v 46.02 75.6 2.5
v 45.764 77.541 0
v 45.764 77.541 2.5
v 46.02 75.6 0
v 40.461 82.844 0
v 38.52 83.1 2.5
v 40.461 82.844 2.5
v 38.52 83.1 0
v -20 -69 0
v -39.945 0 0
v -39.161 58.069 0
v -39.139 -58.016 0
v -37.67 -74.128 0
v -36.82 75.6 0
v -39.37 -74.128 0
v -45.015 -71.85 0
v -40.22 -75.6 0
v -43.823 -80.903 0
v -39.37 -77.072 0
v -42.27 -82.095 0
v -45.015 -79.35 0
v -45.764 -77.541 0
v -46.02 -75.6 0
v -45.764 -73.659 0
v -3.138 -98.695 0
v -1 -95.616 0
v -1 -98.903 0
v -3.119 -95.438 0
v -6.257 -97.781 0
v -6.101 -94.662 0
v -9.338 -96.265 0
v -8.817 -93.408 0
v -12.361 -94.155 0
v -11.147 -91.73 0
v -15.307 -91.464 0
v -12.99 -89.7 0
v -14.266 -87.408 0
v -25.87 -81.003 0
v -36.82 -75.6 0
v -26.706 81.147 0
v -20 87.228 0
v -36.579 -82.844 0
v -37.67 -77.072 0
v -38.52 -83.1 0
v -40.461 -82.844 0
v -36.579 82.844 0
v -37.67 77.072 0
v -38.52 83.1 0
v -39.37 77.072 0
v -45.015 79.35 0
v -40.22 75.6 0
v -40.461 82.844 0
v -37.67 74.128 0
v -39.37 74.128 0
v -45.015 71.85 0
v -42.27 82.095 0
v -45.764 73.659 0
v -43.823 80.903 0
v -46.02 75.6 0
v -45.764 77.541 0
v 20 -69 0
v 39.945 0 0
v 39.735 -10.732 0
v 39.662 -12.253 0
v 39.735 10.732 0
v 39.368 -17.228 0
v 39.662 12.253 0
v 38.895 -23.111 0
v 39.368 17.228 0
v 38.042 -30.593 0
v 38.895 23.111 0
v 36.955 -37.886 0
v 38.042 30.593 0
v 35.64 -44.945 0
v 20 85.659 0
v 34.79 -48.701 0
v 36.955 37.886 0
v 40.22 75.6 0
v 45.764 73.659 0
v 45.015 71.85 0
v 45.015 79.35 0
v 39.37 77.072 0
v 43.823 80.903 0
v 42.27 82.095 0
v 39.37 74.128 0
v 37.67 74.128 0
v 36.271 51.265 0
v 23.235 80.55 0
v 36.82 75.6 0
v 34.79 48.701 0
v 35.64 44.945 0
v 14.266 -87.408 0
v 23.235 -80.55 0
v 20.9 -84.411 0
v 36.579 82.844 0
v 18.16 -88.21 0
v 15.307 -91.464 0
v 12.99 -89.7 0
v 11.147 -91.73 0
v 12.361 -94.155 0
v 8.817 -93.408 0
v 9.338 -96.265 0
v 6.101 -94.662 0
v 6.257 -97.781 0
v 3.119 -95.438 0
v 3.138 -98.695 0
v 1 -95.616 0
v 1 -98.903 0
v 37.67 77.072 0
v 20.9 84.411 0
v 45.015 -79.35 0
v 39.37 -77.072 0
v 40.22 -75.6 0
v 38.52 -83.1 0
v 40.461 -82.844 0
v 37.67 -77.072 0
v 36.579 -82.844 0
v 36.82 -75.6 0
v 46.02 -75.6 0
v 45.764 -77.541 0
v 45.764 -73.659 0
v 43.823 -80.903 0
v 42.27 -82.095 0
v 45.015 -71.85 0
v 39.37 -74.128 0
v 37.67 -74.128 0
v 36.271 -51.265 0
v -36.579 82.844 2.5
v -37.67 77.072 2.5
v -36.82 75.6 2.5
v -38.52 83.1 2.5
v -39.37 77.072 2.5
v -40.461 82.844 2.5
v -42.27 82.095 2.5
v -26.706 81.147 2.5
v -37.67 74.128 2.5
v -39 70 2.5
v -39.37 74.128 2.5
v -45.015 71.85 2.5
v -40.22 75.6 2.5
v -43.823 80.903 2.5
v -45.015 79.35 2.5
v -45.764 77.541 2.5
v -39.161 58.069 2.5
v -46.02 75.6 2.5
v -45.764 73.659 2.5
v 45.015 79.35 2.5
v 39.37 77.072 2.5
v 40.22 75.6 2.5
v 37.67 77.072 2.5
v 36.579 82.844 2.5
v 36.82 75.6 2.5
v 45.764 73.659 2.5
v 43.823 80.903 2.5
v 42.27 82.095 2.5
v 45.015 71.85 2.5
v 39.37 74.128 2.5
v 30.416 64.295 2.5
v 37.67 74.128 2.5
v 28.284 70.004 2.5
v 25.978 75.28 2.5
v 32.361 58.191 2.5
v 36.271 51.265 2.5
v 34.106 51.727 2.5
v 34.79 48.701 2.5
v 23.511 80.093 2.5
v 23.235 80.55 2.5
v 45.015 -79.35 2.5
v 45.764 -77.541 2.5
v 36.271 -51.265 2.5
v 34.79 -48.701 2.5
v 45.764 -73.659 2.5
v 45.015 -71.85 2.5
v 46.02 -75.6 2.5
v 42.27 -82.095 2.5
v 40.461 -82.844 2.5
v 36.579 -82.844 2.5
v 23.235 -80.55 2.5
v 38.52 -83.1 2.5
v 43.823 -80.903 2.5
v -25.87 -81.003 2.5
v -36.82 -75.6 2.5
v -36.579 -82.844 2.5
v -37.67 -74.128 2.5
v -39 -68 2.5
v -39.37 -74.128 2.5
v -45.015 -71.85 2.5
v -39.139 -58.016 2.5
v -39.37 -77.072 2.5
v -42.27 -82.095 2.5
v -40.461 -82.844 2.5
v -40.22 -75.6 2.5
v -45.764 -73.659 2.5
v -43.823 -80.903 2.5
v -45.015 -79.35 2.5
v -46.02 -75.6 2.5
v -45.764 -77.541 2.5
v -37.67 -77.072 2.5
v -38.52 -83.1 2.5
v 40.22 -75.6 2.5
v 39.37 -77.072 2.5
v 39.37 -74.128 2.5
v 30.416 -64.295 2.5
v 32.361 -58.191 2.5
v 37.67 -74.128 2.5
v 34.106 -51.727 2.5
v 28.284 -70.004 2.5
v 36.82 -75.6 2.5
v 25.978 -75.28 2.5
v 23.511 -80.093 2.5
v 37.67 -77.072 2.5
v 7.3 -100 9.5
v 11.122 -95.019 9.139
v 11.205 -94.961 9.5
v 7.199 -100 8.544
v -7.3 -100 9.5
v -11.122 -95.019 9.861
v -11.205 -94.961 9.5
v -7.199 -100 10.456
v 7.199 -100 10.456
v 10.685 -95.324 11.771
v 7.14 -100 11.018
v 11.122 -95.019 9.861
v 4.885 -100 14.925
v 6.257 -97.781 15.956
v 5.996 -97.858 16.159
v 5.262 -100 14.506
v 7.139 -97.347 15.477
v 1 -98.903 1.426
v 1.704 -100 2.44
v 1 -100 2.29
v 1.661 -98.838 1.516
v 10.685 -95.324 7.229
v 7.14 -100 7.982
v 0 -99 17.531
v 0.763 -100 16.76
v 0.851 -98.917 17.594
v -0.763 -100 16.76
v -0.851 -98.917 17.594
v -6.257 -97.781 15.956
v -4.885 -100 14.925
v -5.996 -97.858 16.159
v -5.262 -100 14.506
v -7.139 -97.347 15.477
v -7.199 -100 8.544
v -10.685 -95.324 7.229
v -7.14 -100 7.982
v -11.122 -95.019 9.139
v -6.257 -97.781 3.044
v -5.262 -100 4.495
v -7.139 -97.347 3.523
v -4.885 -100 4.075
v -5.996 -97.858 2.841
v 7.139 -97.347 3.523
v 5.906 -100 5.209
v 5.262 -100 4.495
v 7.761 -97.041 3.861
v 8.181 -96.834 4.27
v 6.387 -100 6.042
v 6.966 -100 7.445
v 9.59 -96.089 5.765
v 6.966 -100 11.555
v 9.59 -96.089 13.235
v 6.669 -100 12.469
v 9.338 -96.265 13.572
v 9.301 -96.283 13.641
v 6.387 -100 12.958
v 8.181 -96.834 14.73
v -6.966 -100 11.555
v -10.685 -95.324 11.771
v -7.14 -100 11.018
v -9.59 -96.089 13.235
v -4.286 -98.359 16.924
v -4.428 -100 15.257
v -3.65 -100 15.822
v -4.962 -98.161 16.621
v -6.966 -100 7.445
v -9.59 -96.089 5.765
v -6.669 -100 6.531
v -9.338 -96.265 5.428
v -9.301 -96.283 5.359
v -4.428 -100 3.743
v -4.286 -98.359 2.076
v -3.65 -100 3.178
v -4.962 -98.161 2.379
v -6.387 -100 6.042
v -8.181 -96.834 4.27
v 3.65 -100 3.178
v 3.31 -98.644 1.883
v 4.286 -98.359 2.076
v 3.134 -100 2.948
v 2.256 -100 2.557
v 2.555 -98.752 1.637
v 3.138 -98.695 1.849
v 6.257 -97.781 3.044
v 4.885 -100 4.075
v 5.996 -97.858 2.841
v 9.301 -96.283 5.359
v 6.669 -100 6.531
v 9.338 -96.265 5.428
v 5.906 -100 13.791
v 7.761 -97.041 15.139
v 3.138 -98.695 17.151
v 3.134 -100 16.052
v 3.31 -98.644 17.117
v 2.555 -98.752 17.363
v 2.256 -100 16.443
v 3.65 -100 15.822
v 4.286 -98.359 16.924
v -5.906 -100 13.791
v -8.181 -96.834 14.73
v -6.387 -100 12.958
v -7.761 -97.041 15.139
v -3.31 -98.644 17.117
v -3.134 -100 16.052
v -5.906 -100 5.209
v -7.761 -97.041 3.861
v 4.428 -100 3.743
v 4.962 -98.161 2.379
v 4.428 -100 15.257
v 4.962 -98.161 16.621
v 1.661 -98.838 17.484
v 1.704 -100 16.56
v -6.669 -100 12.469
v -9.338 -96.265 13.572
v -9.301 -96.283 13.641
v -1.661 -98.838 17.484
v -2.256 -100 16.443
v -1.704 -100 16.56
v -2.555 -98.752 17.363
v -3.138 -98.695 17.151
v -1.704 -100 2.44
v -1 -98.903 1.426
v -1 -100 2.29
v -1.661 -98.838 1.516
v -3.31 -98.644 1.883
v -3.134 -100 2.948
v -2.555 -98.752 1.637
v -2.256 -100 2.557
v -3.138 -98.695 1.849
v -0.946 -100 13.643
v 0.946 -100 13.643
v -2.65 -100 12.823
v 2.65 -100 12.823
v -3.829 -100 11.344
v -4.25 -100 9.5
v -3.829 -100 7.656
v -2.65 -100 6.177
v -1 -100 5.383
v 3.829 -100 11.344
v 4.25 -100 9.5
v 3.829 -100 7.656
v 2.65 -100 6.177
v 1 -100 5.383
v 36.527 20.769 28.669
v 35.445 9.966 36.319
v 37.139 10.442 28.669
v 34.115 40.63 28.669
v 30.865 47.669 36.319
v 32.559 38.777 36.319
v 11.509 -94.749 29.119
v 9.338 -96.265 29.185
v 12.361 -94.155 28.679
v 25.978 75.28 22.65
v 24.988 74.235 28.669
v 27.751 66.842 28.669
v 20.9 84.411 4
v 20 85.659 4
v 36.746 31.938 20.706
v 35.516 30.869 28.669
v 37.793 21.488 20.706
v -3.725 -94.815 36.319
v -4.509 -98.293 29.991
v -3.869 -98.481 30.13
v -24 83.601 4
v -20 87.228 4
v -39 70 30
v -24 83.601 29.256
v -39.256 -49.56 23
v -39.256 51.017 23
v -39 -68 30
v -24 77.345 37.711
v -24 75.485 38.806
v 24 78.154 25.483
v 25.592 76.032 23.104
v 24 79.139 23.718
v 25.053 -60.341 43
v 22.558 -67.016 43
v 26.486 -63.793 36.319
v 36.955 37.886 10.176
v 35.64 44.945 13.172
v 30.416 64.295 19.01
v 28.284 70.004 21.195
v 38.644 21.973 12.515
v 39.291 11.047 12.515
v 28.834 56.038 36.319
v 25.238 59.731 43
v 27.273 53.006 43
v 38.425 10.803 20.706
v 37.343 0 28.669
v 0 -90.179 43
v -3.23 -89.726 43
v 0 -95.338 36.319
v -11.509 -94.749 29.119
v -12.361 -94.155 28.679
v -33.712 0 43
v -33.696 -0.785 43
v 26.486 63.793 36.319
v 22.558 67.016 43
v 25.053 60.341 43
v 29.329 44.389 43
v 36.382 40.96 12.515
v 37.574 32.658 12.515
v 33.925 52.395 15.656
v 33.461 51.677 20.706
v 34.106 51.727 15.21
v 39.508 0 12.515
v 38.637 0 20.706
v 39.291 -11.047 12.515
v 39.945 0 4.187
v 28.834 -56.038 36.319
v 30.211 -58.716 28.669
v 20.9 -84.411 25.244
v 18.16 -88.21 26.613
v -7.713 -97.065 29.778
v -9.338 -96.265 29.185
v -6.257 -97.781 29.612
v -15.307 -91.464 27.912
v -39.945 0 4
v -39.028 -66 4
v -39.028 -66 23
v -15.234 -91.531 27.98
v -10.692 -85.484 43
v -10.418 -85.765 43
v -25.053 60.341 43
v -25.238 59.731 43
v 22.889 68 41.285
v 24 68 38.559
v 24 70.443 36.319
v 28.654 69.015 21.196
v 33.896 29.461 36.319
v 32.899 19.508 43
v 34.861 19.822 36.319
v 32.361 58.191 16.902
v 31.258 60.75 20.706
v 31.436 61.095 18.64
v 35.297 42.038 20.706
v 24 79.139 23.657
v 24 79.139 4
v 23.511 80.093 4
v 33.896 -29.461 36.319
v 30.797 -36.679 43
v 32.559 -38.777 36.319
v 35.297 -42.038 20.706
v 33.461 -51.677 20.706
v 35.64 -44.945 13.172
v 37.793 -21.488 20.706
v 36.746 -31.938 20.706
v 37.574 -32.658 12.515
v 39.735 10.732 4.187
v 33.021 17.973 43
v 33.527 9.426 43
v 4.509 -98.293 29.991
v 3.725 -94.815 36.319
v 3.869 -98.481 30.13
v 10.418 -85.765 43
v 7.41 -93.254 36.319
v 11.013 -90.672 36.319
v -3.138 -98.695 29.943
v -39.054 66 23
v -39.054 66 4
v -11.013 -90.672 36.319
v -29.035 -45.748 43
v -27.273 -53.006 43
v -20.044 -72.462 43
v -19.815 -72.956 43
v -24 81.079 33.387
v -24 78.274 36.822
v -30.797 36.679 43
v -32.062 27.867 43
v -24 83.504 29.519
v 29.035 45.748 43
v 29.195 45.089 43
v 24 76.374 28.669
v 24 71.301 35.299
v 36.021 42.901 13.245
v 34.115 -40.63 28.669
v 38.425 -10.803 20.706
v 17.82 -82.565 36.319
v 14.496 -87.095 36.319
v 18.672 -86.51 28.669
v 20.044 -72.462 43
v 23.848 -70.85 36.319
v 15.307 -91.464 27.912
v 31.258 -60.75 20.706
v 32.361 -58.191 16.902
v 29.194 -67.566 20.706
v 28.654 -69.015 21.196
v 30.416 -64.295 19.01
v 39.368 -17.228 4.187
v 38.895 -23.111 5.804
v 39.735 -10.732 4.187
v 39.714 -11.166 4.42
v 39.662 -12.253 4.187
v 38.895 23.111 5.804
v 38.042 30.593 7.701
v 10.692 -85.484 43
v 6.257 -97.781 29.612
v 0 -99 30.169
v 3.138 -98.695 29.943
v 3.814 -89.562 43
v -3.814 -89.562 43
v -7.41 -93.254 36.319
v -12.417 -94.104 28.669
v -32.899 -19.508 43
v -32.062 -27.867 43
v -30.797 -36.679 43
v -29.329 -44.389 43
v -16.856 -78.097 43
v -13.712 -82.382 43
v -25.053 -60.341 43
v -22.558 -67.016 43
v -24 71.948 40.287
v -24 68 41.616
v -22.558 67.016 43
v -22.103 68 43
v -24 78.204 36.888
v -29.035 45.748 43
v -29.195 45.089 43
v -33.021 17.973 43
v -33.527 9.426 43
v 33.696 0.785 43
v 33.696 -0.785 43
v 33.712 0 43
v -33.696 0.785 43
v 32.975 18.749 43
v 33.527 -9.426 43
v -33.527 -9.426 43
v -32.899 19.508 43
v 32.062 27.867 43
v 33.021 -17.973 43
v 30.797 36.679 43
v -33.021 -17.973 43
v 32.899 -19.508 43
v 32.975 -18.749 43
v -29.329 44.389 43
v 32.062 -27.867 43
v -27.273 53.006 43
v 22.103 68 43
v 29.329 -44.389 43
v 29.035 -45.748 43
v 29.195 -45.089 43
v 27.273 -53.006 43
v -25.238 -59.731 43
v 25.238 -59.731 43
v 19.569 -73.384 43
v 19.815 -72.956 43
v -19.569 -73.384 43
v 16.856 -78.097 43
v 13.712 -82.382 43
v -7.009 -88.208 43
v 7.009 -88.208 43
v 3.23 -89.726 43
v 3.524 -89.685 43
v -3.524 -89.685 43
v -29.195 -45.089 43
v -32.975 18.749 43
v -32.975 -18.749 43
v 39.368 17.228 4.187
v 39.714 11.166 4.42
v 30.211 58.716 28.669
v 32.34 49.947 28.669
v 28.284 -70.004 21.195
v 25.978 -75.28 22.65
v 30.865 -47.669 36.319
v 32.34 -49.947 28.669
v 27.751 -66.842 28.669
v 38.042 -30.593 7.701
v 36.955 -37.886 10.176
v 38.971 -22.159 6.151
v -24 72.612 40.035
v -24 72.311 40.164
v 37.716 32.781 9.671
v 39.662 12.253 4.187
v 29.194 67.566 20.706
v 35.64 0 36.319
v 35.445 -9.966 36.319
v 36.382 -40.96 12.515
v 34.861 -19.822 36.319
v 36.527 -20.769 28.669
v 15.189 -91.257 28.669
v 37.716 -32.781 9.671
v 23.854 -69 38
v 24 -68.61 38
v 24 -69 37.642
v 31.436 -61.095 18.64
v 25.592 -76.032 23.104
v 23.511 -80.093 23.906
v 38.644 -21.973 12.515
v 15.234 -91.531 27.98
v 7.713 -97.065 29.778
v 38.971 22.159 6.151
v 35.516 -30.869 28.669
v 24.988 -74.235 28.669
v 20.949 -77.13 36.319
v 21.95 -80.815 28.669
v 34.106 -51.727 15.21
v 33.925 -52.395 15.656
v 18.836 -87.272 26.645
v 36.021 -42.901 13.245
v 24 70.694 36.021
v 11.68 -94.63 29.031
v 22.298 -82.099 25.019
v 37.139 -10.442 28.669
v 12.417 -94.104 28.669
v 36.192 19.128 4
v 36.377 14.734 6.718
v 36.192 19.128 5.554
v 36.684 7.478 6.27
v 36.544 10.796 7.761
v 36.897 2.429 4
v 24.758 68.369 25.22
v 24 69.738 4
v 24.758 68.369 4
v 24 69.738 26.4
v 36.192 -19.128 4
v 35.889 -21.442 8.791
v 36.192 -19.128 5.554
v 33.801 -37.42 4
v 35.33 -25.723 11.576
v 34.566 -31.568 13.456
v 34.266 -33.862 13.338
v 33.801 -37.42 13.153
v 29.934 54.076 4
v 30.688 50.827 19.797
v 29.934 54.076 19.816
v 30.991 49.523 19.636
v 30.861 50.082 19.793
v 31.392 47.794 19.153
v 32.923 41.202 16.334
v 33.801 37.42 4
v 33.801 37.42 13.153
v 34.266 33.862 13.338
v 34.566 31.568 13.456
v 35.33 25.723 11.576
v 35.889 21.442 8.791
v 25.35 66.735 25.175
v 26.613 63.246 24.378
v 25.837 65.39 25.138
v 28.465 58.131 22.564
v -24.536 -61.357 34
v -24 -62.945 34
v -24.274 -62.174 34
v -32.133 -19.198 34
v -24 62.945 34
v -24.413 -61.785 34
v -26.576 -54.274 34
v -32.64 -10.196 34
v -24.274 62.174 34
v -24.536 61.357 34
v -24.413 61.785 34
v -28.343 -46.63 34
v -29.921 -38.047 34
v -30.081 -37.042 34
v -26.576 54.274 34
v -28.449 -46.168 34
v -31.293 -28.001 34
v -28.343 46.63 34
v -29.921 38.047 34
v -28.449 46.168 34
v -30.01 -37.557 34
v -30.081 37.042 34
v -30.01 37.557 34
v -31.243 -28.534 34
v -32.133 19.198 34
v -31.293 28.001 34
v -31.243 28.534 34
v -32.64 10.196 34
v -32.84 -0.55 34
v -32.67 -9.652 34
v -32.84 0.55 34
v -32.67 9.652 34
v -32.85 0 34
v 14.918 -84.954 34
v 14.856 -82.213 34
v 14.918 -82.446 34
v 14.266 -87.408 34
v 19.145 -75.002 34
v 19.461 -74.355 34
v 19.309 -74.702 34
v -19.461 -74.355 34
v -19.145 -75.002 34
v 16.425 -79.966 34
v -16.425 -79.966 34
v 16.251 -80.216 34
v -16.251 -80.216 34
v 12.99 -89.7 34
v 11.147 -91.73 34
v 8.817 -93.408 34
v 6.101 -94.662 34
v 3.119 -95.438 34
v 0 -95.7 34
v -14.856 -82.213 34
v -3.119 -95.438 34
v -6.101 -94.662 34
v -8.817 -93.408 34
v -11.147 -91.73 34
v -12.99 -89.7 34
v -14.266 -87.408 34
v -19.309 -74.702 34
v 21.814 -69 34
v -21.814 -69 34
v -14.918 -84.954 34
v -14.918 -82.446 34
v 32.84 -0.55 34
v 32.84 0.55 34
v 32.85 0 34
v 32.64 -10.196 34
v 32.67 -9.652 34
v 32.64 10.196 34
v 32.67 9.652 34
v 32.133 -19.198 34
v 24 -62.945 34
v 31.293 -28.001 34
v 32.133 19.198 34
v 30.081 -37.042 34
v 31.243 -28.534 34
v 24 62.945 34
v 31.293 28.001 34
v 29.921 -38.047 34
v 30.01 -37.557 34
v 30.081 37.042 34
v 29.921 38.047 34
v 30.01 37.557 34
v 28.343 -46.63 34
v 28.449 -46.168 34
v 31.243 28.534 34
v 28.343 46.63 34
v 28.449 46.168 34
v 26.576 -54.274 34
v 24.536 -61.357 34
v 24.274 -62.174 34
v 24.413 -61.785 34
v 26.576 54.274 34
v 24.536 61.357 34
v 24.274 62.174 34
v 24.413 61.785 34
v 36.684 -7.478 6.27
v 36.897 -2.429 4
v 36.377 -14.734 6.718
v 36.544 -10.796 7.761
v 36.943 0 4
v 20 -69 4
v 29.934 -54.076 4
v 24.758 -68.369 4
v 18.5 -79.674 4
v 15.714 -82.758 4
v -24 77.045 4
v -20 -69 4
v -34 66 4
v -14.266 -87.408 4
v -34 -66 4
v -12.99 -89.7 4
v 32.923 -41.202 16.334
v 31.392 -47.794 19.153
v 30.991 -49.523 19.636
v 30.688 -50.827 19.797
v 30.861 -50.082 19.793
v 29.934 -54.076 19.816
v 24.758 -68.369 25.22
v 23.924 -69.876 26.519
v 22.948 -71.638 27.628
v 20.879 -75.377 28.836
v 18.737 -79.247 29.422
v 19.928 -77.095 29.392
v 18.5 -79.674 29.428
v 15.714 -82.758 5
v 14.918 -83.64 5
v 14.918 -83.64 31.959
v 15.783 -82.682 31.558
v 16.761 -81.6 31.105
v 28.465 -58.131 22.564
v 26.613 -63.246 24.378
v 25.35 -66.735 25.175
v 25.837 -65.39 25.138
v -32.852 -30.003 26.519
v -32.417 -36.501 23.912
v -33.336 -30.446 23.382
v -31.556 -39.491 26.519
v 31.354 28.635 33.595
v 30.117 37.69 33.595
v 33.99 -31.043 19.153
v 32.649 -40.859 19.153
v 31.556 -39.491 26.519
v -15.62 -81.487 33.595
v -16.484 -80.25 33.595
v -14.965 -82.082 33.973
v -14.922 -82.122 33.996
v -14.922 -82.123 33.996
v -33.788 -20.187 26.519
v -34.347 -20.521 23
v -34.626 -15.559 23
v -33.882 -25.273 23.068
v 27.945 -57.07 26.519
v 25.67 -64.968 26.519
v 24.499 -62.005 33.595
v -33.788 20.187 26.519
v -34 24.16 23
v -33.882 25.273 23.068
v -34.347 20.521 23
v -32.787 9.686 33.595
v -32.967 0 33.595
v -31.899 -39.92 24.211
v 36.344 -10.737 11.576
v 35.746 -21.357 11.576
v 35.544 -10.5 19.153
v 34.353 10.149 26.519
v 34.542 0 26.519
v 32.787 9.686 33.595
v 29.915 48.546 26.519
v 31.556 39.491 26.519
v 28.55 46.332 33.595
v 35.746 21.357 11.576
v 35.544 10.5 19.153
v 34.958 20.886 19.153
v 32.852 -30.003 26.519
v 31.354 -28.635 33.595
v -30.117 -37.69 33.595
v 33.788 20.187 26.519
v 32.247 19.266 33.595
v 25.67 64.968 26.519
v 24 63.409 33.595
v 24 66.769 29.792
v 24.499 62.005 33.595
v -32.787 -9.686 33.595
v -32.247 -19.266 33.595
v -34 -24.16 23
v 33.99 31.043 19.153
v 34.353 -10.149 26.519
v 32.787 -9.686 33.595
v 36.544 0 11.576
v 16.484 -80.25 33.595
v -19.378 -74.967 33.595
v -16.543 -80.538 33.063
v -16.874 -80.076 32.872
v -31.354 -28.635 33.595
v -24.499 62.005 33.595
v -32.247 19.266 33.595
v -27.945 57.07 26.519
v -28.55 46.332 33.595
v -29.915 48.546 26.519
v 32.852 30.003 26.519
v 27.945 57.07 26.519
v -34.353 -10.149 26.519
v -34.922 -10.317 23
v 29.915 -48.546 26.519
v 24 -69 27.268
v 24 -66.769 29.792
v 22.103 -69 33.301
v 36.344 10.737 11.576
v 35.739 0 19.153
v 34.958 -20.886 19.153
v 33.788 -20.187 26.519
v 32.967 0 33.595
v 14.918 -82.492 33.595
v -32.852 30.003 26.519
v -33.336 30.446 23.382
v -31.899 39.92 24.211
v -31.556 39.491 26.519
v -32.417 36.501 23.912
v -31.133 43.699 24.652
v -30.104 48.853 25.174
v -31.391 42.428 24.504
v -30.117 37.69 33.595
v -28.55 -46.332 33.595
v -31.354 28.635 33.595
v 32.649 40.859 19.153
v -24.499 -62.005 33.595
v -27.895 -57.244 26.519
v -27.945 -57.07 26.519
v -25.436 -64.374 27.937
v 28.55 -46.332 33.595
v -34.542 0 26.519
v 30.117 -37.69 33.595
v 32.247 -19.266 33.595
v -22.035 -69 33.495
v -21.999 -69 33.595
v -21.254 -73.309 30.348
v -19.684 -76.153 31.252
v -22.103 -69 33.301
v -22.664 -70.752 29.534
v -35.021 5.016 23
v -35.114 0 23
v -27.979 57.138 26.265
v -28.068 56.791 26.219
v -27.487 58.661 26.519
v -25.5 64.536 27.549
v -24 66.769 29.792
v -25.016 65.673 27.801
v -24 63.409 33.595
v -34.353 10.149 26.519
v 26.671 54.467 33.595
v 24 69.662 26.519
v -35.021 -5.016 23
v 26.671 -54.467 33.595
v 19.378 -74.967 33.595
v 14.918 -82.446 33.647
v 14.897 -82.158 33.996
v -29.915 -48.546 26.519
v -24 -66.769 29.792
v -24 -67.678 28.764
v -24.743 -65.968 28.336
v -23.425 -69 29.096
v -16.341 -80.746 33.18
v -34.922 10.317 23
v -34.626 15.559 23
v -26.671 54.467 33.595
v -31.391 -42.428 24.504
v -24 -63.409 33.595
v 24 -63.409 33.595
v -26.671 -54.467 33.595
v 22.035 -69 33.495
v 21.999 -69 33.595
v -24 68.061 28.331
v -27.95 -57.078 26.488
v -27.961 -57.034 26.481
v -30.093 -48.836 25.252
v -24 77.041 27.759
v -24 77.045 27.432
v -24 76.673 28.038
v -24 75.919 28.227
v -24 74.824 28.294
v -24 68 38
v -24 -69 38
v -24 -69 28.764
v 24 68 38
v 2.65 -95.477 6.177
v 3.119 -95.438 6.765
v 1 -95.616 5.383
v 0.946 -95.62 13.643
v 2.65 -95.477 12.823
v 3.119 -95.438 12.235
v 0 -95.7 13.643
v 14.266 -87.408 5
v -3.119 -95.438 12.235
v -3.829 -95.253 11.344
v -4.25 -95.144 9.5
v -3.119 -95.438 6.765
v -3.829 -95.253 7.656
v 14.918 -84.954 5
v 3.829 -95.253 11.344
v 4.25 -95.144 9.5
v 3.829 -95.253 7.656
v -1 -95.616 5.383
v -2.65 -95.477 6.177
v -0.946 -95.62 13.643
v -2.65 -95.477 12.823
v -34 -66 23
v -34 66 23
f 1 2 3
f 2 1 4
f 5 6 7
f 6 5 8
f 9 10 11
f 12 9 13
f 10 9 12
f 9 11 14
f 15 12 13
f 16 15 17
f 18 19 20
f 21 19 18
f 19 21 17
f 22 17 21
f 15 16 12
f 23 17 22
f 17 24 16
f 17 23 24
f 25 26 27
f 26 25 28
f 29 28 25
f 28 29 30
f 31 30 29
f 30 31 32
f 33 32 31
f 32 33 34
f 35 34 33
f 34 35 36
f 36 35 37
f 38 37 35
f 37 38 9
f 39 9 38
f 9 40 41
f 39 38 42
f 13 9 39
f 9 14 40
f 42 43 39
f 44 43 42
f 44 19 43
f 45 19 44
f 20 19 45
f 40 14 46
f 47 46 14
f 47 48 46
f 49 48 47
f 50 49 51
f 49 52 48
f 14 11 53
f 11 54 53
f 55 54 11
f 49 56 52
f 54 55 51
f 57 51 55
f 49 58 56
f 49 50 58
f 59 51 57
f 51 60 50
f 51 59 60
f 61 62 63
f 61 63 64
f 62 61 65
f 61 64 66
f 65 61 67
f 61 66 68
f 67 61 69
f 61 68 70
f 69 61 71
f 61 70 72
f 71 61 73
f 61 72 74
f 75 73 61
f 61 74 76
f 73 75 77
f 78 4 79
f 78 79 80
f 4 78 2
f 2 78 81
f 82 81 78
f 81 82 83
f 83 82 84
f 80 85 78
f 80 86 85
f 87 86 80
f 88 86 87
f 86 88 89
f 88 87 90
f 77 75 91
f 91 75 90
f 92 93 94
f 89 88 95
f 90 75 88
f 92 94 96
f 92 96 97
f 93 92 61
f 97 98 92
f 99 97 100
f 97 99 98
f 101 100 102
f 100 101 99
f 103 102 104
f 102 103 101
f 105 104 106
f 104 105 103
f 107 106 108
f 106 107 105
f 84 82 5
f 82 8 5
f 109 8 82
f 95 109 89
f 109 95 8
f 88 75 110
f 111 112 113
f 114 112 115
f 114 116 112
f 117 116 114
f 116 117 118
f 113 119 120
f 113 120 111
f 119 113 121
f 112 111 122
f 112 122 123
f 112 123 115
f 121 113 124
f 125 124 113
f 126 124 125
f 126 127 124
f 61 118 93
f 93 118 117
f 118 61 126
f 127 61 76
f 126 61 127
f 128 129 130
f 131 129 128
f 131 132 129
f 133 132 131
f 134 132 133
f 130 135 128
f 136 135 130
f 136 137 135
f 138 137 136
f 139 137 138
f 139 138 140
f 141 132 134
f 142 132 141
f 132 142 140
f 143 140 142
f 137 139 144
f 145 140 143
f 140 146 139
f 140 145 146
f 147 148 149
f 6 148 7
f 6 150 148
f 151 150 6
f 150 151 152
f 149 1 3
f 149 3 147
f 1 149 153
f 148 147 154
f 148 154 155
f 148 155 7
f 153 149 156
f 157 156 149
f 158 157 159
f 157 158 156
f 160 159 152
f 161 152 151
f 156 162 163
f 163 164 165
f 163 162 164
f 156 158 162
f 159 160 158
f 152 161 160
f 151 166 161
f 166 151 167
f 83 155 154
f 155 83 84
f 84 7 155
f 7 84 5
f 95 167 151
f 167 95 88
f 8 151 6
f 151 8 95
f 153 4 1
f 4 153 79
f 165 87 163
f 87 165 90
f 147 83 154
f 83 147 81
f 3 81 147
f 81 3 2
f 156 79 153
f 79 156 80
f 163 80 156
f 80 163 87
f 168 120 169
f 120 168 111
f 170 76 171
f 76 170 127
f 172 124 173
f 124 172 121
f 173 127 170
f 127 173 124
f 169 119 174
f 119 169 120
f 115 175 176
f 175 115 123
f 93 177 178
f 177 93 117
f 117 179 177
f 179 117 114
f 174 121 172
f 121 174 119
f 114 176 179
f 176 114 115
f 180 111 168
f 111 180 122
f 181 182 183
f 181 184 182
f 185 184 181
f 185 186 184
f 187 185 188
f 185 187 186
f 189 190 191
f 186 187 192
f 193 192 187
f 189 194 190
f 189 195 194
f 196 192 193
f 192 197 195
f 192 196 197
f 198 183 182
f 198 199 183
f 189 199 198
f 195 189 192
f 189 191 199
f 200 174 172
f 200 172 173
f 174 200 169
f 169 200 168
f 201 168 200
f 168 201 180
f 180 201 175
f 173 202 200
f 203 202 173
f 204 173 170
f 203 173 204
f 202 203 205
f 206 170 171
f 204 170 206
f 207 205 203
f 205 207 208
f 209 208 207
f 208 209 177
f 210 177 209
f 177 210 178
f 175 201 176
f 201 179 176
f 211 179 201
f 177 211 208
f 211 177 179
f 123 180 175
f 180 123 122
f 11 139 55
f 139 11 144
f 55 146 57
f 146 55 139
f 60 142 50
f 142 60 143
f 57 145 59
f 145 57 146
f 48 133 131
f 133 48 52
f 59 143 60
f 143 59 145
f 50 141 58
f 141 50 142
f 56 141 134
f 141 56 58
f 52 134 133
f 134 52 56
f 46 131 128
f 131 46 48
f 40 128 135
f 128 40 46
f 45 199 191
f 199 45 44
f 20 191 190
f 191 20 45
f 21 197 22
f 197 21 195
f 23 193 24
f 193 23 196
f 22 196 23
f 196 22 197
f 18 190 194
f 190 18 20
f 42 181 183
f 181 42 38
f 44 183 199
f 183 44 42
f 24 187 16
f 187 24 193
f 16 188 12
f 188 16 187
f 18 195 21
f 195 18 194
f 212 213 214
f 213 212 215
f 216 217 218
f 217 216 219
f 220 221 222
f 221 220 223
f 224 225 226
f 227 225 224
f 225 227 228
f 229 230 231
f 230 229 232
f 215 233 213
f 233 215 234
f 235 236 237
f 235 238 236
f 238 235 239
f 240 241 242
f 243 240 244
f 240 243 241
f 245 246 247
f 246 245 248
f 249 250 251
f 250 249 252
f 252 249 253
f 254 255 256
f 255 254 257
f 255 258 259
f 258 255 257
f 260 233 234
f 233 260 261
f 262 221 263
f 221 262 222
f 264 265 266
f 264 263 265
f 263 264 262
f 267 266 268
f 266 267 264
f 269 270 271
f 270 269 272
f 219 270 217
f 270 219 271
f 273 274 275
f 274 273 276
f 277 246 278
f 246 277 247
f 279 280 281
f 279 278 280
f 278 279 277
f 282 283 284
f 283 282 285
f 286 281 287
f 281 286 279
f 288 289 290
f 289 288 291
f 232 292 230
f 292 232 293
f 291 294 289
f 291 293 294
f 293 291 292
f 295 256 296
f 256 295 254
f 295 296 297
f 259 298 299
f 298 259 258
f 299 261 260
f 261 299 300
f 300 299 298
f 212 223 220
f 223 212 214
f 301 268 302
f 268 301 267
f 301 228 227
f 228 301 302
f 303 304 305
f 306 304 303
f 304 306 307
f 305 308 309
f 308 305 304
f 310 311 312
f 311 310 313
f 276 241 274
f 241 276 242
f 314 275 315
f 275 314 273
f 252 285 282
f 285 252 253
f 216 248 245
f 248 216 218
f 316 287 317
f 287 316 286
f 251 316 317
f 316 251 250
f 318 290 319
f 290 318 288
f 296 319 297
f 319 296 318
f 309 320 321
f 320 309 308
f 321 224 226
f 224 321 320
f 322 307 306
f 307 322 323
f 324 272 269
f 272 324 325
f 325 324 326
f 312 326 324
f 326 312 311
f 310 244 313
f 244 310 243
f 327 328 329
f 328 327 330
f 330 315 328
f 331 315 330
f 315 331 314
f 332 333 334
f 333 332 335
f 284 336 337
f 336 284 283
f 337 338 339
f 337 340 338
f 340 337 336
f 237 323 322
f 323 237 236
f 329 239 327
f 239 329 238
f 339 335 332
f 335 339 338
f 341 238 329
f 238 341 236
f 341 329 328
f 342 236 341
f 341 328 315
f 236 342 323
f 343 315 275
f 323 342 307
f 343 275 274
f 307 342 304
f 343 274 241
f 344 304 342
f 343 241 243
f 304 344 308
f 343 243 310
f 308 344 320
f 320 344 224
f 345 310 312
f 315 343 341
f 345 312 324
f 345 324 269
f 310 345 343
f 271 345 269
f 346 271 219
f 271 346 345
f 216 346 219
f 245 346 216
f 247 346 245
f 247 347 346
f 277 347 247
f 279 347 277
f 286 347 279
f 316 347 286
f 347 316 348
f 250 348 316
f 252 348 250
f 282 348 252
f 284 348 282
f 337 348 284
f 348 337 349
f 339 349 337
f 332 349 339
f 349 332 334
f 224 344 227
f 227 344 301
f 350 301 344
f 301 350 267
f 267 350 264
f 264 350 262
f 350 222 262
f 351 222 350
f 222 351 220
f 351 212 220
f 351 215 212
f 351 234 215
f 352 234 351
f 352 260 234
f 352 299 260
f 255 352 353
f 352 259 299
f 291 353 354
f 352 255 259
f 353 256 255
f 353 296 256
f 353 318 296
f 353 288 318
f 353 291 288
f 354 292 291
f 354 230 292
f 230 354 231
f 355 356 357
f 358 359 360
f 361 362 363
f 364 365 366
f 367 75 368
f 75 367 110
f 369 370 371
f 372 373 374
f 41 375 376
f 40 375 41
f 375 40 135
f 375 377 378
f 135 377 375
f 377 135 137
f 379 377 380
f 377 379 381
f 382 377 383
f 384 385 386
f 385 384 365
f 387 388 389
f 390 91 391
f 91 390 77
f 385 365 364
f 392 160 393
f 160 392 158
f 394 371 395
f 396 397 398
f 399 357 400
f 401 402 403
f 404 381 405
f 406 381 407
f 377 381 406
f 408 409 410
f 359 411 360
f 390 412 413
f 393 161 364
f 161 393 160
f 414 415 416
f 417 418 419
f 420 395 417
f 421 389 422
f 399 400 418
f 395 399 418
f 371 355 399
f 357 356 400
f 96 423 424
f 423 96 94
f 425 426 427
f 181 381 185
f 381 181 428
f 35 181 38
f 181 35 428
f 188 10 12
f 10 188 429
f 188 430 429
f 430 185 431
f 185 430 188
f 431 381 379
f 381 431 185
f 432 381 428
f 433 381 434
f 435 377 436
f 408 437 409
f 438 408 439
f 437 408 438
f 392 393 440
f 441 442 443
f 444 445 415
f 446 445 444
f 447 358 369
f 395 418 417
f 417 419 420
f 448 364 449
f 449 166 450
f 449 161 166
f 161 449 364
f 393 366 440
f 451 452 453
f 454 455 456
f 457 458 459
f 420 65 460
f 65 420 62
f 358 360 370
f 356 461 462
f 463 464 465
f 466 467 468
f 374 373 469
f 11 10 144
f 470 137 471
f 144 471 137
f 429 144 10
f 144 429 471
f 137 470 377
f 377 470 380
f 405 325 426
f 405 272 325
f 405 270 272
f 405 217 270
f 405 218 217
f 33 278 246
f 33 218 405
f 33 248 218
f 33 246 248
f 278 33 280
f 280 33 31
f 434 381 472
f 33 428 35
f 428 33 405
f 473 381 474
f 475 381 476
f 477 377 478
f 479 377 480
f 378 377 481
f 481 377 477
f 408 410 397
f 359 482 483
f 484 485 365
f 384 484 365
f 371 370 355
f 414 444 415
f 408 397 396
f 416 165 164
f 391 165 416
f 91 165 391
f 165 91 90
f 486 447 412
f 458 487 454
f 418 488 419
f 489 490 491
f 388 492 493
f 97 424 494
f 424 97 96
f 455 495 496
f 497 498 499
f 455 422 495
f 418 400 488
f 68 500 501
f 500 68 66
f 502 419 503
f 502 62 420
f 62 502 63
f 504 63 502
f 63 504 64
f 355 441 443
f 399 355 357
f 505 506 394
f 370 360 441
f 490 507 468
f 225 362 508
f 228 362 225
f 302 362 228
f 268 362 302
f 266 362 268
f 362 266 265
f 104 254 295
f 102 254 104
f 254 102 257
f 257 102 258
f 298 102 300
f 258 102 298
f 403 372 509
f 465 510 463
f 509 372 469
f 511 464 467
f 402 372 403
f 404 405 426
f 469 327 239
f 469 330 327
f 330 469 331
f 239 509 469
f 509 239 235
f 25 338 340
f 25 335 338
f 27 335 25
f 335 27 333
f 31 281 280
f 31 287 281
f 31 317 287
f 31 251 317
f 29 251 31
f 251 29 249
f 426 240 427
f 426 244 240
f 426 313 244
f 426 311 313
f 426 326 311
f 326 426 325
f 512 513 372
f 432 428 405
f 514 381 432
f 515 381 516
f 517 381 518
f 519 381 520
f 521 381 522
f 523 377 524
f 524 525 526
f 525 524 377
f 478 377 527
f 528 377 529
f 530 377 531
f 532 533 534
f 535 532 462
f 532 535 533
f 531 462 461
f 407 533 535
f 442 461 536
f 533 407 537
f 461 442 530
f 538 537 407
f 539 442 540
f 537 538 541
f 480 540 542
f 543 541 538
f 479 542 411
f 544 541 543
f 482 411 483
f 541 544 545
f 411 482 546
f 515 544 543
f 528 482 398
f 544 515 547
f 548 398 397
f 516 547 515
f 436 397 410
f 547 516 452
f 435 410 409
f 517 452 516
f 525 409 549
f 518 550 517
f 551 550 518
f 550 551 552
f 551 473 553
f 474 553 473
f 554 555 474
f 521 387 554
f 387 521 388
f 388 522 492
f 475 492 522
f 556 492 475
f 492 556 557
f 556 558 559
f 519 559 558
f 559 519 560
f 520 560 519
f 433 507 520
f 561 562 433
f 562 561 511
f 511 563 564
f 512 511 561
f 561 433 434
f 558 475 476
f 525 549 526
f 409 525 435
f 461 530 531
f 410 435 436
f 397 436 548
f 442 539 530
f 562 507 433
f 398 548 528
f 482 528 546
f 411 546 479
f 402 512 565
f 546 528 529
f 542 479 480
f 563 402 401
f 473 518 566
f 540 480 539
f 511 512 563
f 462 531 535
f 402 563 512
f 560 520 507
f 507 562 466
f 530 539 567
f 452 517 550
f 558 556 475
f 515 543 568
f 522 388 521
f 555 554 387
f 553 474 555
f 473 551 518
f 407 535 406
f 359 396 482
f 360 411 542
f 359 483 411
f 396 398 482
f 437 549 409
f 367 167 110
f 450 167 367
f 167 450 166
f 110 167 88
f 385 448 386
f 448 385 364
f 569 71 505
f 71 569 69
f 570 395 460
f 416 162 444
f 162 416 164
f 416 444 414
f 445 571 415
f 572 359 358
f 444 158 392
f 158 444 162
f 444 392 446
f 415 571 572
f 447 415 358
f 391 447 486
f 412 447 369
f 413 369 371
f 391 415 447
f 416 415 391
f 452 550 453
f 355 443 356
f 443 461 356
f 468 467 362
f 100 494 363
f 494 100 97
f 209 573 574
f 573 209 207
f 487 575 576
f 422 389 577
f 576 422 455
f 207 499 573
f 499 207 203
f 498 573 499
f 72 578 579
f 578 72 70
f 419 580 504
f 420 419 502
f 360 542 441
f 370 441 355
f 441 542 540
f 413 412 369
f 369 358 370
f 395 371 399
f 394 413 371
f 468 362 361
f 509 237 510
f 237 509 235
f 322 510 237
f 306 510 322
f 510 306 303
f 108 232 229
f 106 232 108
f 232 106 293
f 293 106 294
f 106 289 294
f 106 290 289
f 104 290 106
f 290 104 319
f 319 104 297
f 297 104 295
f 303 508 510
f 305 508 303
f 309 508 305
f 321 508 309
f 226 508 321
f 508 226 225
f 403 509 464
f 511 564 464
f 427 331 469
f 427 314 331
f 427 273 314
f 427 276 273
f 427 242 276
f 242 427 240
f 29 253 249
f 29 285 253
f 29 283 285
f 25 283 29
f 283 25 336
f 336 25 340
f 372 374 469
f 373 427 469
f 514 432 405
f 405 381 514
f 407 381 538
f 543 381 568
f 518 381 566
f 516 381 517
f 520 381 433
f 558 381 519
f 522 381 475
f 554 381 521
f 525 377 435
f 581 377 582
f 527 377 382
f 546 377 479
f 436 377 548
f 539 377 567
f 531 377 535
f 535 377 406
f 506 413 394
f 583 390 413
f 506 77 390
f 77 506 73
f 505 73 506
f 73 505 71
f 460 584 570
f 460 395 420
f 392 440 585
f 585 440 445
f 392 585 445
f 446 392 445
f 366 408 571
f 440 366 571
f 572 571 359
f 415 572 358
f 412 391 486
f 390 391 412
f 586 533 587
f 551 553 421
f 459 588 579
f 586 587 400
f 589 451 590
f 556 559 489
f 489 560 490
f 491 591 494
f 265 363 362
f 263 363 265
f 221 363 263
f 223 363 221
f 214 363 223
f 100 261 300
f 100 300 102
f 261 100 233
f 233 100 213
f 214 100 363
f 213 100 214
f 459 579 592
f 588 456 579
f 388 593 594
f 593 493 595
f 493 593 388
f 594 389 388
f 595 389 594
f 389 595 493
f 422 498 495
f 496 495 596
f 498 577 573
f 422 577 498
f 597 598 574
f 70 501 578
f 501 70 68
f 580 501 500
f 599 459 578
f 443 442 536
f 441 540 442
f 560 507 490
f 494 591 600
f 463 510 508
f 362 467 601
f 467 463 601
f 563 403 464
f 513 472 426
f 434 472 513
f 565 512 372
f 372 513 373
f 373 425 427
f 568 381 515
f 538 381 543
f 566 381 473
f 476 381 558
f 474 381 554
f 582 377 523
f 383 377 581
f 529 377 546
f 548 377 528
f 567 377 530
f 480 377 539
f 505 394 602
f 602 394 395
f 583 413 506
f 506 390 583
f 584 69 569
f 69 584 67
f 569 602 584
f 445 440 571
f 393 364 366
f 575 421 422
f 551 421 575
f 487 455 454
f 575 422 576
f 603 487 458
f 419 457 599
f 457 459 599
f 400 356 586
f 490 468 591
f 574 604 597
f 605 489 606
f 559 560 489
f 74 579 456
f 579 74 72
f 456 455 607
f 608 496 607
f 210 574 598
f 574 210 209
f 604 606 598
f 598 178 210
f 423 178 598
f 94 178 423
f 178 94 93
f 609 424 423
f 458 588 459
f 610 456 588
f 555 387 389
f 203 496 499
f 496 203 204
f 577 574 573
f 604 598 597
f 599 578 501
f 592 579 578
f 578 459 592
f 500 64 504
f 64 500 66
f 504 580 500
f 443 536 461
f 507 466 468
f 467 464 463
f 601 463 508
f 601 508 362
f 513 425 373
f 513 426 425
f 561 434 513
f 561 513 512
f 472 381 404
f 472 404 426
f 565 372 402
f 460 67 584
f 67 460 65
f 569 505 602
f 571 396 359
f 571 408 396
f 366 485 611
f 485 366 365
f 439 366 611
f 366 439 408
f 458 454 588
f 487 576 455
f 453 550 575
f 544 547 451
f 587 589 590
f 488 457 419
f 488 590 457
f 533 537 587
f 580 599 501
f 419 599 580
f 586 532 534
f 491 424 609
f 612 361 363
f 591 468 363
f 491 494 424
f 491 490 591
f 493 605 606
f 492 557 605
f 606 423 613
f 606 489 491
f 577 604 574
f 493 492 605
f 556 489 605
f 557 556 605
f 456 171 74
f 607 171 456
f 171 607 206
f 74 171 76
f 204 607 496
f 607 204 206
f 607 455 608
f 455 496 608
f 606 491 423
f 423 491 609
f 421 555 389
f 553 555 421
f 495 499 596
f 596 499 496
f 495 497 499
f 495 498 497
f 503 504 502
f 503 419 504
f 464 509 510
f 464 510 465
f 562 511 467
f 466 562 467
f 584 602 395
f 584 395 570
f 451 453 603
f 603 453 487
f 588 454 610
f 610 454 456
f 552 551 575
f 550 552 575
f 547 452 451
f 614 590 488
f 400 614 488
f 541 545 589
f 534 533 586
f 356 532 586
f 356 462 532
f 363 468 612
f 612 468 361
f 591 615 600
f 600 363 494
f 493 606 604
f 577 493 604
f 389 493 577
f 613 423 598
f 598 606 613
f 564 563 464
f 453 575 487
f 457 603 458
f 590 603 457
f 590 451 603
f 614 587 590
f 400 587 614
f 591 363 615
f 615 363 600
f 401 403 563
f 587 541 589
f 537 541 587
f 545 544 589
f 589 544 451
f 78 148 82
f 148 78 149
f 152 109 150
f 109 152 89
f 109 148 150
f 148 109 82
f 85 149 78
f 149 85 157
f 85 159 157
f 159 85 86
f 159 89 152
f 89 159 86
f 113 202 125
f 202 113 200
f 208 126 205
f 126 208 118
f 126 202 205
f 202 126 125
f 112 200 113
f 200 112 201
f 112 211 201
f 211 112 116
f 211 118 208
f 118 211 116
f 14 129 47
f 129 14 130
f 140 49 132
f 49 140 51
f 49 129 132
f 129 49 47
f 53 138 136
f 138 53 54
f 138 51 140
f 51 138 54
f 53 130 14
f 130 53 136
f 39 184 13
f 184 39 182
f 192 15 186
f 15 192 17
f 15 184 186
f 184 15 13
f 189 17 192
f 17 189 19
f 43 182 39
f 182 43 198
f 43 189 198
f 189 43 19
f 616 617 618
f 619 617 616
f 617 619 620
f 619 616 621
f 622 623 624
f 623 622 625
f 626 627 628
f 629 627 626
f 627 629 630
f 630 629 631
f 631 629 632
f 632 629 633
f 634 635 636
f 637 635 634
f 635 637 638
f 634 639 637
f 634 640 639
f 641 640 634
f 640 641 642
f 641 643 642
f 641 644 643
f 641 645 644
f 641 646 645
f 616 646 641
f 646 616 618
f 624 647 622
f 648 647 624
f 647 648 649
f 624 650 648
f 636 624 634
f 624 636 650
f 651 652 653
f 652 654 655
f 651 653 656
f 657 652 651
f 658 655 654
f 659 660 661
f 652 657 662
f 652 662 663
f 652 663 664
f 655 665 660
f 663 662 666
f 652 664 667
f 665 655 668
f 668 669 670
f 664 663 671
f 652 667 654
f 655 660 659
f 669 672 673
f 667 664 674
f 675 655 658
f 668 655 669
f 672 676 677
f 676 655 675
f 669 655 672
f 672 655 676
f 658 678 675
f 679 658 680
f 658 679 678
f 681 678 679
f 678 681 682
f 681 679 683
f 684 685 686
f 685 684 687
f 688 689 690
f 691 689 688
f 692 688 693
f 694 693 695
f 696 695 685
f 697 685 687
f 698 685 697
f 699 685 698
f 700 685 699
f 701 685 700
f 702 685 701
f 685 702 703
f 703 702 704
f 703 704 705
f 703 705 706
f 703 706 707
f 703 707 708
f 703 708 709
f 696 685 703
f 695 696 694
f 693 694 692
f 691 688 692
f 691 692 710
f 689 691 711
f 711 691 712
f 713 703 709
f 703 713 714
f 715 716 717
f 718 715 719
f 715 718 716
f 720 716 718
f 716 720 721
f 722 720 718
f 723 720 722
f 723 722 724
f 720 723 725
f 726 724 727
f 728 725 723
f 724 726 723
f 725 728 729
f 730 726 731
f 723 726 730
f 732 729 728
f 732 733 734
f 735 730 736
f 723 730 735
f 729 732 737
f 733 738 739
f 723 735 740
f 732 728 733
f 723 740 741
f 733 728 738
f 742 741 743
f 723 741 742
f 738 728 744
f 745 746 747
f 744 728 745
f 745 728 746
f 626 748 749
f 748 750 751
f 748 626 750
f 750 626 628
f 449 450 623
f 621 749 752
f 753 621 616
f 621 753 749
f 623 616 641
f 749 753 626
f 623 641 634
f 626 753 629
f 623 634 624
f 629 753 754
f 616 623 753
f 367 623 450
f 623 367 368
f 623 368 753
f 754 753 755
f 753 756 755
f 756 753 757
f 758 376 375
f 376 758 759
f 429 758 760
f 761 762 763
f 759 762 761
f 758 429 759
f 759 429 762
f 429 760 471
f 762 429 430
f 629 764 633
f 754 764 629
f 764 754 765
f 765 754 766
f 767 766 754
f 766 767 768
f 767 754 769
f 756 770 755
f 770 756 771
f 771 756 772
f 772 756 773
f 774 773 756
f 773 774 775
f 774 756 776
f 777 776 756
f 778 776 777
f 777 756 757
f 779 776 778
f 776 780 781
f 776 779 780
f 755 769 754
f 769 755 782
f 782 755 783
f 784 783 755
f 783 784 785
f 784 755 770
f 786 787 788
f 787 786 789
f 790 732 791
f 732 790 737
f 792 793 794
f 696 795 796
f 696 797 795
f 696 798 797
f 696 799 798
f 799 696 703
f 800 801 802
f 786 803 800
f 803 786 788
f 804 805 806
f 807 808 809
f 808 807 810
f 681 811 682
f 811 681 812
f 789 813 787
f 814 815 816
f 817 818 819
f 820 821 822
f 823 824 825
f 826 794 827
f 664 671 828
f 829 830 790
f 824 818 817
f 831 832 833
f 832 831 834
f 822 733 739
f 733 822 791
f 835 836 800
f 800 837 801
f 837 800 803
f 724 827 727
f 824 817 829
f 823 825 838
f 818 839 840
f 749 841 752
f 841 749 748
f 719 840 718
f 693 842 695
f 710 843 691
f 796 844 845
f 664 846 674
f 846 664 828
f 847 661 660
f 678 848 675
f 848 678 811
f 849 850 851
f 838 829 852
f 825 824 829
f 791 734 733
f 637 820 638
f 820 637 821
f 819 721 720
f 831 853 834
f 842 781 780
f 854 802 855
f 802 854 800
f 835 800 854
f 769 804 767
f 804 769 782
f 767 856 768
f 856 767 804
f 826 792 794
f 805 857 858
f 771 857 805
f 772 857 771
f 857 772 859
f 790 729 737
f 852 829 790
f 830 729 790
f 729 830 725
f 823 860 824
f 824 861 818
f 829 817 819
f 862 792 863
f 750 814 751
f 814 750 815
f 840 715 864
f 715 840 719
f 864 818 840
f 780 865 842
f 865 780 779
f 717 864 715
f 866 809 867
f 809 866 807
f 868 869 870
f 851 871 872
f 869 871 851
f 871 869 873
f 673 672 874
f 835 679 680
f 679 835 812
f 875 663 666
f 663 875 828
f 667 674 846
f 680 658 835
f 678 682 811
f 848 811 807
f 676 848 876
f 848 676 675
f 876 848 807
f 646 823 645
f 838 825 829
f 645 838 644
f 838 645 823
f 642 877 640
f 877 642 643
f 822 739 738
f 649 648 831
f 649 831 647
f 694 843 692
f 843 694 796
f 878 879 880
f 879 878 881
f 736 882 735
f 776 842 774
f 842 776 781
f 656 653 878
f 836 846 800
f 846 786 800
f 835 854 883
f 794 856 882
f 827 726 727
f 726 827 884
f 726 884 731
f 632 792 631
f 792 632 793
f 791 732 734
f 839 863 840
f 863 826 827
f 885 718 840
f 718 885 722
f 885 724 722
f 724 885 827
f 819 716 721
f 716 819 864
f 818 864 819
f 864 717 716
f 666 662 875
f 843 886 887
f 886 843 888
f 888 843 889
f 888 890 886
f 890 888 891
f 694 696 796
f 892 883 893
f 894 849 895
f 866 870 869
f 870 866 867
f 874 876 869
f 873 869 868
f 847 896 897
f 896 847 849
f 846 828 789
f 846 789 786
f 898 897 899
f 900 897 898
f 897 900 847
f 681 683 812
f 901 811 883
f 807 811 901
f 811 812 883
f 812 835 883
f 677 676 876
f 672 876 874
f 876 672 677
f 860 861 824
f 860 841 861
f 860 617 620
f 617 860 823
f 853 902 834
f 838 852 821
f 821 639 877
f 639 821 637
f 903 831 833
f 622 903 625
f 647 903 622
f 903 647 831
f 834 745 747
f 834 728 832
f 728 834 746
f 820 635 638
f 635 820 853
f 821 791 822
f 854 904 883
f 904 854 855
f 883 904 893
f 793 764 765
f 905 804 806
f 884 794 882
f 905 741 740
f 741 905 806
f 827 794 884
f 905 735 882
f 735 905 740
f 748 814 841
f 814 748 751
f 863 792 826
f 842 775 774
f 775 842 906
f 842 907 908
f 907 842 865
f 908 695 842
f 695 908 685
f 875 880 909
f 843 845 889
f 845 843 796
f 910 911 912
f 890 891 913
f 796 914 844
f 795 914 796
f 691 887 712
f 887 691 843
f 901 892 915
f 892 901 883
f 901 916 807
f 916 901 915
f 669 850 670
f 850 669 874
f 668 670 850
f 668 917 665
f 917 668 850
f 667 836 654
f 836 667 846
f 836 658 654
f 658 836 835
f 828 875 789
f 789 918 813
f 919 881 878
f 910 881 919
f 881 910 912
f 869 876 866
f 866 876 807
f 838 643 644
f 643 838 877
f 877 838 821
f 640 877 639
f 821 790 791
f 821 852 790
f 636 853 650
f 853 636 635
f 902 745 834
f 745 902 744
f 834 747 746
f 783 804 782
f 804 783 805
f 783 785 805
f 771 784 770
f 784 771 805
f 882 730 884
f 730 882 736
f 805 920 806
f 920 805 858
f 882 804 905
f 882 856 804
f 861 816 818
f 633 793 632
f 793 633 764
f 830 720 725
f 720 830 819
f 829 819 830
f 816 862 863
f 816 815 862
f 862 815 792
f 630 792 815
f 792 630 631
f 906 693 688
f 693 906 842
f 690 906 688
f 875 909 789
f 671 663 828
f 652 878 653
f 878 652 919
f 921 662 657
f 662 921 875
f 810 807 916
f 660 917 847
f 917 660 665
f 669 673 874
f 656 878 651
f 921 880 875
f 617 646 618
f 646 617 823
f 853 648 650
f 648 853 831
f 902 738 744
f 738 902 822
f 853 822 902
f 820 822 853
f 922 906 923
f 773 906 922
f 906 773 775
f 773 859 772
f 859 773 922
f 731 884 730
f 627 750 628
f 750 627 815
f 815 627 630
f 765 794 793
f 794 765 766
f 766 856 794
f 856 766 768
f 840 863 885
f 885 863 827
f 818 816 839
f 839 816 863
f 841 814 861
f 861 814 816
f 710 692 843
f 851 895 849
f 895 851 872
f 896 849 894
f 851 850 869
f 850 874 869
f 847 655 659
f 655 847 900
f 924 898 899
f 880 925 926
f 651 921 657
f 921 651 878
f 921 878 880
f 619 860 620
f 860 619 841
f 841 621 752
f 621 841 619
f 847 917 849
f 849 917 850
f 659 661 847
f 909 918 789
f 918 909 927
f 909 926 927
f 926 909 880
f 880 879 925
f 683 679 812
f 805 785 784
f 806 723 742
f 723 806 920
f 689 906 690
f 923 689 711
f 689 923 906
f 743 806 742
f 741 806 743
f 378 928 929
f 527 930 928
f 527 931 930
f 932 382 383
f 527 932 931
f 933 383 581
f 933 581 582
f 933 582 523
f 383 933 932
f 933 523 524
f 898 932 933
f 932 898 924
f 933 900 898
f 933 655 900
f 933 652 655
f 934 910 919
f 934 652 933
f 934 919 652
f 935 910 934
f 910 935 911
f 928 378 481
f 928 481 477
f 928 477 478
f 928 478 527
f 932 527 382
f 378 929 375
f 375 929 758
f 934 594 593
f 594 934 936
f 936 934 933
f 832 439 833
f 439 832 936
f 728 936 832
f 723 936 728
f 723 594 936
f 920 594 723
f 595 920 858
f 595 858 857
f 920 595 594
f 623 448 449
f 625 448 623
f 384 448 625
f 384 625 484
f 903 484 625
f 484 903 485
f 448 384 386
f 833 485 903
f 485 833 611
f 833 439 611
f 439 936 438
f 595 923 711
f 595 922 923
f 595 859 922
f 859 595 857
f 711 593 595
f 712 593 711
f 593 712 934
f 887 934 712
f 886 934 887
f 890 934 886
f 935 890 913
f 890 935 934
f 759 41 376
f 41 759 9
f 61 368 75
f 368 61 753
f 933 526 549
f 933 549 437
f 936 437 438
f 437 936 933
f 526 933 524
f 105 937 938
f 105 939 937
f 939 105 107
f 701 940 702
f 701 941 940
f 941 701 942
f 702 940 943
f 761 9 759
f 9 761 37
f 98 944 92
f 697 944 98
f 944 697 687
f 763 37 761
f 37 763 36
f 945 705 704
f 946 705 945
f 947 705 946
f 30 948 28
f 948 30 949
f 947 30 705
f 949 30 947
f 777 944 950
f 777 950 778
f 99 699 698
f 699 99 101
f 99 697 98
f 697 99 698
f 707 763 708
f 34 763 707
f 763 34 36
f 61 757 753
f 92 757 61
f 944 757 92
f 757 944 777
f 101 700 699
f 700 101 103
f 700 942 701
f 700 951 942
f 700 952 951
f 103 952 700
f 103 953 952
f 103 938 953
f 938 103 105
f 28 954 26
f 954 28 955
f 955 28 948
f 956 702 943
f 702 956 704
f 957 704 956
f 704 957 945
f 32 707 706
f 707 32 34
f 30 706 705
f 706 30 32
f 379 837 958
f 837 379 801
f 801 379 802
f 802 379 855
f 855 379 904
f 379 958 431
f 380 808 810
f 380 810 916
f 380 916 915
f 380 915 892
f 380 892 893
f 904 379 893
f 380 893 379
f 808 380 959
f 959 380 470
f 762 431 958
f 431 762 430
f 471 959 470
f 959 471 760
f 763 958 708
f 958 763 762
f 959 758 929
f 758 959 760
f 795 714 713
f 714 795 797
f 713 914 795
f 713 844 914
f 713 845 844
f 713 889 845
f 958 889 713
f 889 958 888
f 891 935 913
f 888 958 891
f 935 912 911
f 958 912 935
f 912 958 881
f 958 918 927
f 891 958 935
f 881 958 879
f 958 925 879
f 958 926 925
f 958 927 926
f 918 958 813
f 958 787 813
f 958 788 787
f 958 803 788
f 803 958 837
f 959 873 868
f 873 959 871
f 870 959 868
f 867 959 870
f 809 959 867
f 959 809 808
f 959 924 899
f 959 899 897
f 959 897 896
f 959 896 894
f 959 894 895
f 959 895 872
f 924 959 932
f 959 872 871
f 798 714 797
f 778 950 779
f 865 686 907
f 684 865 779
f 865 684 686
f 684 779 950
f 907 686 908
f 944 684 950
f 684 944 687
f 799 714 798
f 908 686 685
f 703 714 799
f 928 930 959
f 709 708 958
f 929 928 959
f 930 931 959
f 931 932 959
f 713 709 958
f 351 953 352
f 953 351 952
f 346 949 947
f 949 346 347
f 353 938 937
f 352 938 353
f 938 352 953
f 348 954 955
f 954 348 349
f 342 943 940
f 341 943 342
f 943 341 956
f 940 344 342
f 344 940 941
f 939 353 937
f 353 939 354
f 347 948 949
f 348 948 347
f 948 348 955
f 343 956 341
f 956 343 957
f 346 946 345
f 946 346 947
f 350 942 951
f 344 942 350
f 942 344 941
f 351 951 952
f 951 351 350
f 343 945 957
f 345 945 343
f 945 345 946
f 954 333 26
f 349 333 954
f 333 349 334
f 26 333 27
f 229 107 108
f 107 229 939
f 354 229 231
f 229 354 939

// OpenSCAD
// file: ../commons/config.scad
/**
 * config.scad
 * 
 * Constants and common methods used for the multi-copter
 * 
 */

//wire openning
wireDiameter = 8;


// suavizar las superficies curvas
//$fs= 1 ; 
//$fa= 1 ; 


///////////// armMount
entryWidth = 50.75/2;
entryHeight = 18.25/2;
entryDepth = 12;

outputWidth = 45/2; //49/2;
outputHeight = 18/2;
outputDepth = 8 +15; //For modelling, this is the position of the further ellipse


armLength = 184; //from the beginning of armMount/malePart to the center of motorMount

//auxiliary method
module oval(w,h, height, center = false) {
 scale([1, h/w, 1]) cylinder(h=height, r=w, center=center);
}

//auxiliary method
module ellipsoid(w,h, center = false) {
 scale([1, h/w, 0.8]) sphere(r=w, $fn=60);
}


//auxiliary method
module nestedHull()
{
  for(i=[0:$children-2])
    hull()
    {
      children(i);
      children(i+1);
    }
}

//hexer module
hexagon_d = 10;
hexagon_x = 9;
hexagon_y = 5;
hexagon_h = 50; // centered

min_x = - 150;
max_x = 150;
min_y = -100;
max_y = 100;

wall_t = 5;
module hollowify()
difference(convexity=10){
    children(0); 
    linear_extrude(center=true,convexity=10){
        difference(){
            // hexagon array
            for(
                x=[min_x:hexagon_x*2:max_x], 
                y=[min_y:hexagon_y*2:max_y]
            ) translate([x, y, 0]) {
                circle(d=hexagon_d,  center=true, $fn=6);
                translate([hexagon_x, hexagon_y, 0]) circle(d=hexagon_d, center=true, $fn=6);
            }

            minkowski(){
                difference(){
                    translate([min_x, min_y, 0])
                        square([hexagon_x + max_x-min_x, hexagon_y + max_y-min_y]);
                    projection() children(0); 
                }
                circle(r=wall_t);
            }
        }
    }
}
// file: config.scad
/**
 * Quad Copter configuration file
 *
 */

//Main electronics dimensions

//ardupilot
elecWidth = 40.64;
elecLength = 66.42;
elecHolesWidth = 35.31;
elecHolesHeight = 61.09;

// Omnimac 3DR APM Anti Vibration Mount
monimacWidth = 58;
monimacLength = 97;
monimacHolesWidth = 45;
monimacHolesHeight = 45;

wallThick = 6;

baseLength = 108;

baseWidth = 72;

baseHeight = 25;

//electronic's openning. Shared by mainPlatform and cover
openningLength = 78;
openningWidth = 87;
// main file
/**
 * Battery compartment
 * 
 * Created by Diego Viejo
 * 17/Jun/2015
 * 
 */

include<config.scad>
include<../commons/config.scad>

//turnigy  2.2mAh 3S 25C
bat1_Width = 35;
bat1_Length = 108;
bat1_Height = 25;

//RCInnovations 6000mAh 3S 30C

bat2_Width = 44;
bat2_Length = 138;
bat2_Height = 33;


// batWidth = bat1_Width;
// batLength = bat1_Length;
// batHeight = bat1_Height;

batWidth = bat2_Width;
batLength = bat2_Length;
batHeight = bat2_Height;

difference()
{
    union()
    {
        hull()
        {
            intersection()
            {
                oval(w=batWidth/2+18, h=batLength/2+30, height=batHeight+10, $fn=80);
                scale([1,1,2.5])ellipsoid(w=batWidth/2+18, h=batLength/2+38);
            }
            //clearance for battery connection
            translate([-batWidth+5, -batLength/2+1, 0]) cube([20, batLength, 30]);
        }
        
        for(i=[1,-1]) for(j=[1,-1])
        hull()
        {
            translate([i*(baseWidth*0.535), j*baseLength*0.7, 0]) 
                cylinder(d=15, h=2.5);
            translate([i*(baseWidth*0.25), j*baseLength*0.55, 0]) 
                cylinder(d=40, h=2.5);
        }
        //pixhawk safety button
        intersection()
        {
            translate([0,-batLength/2-30-3,4+11/2]) rotate([-90, 0, 0]) cylinder(d2=27, d1=11.5,h=10);
            translate([-100,-100,0]) cube([200,200,100]);
        }
    }
    
    translate([-(batWidth+4)/2, -batLength/2, 4]) cube([batWidth+4, batLength+35, batHeight+1]);
    translate([-(batWidth-4)/2, -batLength/2, -1]) cube([batWidth-4, batLength+30, 12]);
    translate([-(batWidth+4)/2, batLength/2-1, 4]) cube([batWidth+4, 30, batHeight+10]);
    //battery container's attaching holes
    for(i=[1,-1]) for(j=[1,-1])
    {
        translate([i*(baseWidth*0.535), j*baseLength*0.7, -1]) 
            cylinder(r=1.7, h=10+1);
    }

    intersection()
    {
        translate([0,0,4]) oval(w=batWidth/2+15, h=batLength/2+23, height=batHeight+1-4);
        scale([1,1,2.5])ellipsoid(w=batWidth/2+15, h=batLength/2+35);
    }
    
    hull()
    {
        translate([0, -baseLength*0.775, -1]) rotate(90) oval(w=12, h=15, height=4+2);
        translate([-(batWidth-4)/2, -batLength/2, -1]) cube([batWidth-4,2,4+2]);
    }
    //clearance for battery connection
    translate([-batWidth+5-1, -batLength/2+3, 4]) cube([20, batLength-6, 25-6]);
    hull()
    {
        translate([-batWidth+5+5, -batLength/2+3, 4]) cube([20-5, batLength-6, 25-6]);
        translate([0, -baseLength*0.775, 4]) rotate(90) oval(w=12, h=15, height=batHeight-3);
        translate([-7, baseLength*0.75, 4]) cylinder(d=20, h=batHeight-5);
    }

    //pixhawk safety button
    translate([0, -batLength/2-30-4,4+11/2]) rotate([-90, 0, 0]) cylinder(d=8.5, h=12);
    translate([-1, -batLength, -1]) cube([2,batLength,4+11/2+2]);
}

*%translate([0, 0, 0]) rotate([180,0,0])
import("../output/mainPlatformPart1.stl");
